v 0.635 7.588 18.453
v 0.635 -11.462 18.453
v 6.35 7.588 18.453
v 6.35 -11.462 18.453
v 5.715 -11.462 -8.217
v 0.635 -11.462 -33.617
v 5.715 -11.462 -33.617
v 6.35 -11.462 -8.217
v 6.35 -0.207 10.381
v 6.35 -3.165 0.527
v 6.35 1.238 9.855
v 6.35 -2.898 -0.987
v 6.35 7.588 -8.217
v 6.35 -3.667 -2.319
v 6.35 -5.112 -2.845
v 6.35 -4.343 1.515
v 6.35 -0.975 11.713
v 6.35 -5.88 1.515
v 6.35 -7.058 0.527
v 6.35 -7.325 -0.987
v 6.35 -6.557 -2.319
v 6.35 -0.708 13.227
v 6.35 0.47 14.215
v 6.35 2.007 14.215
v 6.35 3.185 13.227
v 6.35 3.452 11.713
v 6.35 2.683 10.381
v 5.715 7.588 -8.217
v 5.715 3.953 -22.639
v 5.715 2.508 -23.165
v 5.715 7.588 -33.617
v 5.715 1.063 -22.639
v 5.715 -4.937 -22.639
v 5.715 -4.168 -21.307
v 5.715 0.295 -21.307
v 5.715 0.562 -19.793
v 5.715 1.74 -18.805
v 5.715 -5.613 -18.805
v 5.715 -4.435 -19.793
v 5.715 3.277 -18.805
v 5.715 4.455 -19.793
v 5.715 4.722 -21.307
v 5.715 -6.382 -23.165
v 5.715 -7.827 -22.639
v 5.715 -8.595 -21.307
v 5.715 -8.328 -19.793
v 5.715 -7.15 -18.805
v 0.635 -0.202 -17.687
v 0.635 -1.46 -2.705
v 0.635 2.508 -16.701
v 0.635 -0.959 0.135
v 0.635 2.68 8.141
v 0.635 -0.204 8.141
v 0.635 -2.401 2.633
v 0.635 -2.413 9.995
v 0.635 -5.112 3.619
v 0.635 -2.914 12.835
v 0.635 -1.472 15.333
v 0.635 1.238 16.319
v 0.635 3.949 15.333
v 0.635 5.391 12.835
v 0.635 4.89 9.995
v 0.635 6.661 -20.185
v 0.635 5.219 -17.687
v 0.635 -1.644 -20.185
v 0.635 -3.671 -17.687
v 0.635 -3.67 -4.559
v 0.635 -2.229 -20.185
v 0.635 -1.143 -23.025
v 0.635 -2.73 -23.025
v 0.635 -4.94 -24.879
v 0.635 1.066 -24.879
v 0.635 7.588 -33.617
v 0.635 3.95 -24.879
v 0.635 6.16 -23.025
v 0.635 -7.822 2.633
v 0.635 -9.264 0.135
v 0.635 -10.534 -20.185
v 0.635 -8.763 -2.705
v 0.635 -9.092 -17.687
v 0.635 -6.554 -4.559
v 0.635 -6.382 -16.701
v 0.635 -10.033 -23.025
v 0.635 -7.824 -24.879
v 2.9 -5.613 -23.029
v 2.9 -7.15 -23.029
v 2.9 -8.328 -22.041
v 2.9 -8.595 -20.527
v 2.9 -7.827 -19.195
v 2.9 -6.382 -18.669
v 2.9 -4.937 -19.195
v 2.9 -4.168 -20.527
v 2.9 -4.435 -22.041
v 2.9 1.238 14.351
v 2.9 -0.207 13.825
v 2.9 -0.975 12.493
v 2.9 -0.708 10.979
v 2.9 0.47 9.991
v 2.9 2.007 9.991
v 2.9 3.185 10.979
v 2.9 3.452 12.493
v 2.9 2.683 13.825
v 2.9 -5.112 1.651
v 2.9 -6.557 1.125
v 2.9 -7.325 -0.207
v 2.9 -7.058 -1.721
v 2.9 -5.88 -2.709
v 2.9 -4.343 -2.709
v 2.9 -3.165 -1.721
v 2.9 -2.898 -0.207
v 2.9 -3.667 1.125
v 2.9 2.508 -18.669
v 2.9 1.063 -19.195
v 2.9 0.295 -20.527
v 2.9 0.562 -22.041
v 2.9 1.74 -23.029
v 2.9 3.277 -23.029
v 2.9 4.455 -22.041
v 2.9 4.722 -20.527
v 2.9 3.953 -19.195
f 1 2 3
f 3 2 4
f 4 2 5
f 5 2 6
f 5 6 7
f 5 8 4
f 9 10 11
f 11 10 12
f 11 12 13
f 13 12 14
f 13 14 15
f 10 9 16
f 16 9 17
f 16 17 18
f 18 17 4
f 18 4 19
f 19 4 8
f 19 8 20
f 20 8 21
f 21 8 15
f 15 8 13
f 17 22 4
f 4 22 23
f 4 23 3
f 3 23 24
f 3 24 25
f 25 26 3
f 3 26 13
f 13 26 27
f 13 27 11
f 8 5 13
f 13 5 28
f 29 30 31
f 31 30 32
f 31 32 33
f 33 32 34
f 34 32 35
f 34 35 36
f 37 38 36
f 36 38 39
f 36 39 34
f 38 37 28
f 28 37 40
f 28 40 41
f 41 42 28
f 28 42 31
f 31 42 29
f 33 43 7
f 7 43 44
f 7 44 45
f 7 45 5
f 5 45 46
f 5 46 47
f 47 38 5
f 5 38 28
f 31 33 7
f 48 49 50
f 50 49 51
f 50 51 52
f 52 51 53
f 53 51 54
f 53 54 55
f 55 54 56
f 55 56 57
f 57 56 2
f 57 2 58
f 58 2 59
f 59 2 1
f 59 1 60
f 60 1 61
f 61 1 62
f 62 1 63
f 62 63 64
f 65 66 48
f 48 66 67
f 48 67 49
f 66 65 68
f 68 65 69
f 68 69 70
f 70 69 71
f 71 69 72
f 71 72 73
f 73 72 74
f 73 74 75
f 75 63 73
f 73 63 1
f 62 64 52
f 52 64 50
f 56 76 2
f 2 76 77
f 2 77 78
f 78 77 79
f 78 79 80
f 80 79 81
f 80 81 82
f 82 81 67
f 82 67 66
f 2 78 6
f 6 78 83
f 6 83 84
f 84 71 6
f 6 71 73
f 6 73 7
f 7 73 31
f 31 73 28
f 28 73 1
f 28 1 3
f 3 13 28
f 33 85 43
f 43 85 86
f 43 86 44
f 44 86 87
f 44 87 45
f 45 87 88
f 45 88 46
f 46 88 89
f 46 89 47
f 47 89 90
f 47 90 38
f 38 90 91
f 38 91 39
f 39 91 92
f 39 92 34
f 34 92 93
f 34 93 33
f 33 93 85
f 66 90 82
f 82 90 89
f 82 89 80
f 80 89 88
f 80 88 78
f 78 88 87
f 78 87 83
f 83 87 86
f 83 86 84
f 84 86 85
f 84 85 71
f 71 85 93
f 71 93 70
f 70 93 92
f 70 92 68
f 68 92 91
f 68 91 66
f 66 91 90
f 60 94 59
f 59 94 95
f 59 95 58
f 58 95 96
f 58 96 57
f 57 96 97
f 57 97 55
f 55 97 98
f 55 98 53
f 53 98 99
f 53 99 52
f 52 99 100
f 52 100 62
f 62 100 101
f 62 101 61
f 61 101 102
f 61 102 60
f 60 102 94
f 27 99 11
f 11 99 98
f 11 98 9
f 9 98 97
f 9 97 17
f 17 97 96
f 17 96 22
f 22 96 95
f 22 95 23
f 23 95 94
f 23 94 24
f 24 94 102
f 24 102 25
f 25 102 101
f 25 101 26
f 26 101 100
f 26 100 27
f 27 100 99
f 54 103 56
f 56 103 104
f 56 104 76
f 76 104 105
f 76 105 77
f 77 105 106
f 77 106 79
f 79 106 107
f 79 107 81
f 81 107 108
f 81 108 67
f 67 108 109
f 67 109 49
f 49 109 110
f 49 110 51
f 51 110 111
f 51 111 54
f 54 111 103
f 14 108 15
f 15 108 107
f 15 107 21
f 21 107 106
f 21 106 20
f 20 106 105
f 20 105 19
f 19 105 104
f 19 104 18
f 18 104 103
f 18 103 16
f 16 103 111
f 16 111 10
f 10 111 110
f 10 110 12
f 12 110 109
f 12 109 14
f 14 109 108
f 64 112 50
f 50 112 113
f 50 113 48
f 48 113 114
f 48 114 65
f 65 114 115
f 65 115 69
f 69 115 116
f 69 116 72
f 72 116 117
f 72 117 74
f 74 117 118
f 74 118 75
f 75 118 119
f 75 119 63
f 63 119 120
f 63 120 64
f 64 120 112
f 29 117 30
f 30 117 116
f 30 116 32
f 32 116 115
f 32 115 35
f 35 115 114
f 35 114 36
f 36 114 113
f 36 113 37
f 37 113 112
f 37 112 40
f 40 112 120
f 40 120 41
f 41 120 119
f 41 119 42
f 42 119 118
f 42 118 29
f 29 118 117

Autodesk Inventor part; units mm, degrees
ref_plane "YZ Plane" through (0, 0, 0) normal (1, 0, 0) x (0, 1, 0)
ref_plane "XZ Plane" through (0, 0, 0) normal (0, 1, 0) x (-1, 0, 0)
ref_plane "XY Plane" through (0, 0, 0) normal (0, 0, 1) x (1, 0, 0)
sketch "Sketch1" plane through (0, 0, 0) normal (1, 0, 0) x (0, 1, 0)
  line L0 (7.5884, 18.4529) -> (-11.4616, 18.4529)
  line L1 (-11.4616, 18.4529) -> (-11.4616, -33.6171)
  line L2 (-11.4616, -33.6171) -> (7.5884, -33.6171)
  line L3 (7.5884, -33.6171) -> (7.5884, 18.4529)
  point P0 (0, 0)
  dimension "d0" = 52.07
  dimension "d1" = 19.05
extrude "Extrusion1" add sketch "Sketch1" along normal blind 6.35
sketch "Sketch3" plane through (0, 7.5884, 18.4529) normal (0, 1, 0) x (1, 0, 0)
  line L0 (0, 26.67) -> (0.635, 26.67)
  line L1 (0.635, 26.67) -> (0.635, 52.07)
  line L2 (0.635, 52.07) -> (0, 52.07)
  line L3 (0, 52.07) -> (0, 26.67)
  line L4 (5.715, 52.07) -> (6.35, 52.07)
  line L5 (6.35, 52.07) -> (6.35, 26.67)
  line L6 (6.35, 26.67) -> (5.715, 26.67)
  line L7 (5.715, 26.67) -> (5.715, 52.07)
  line L8 (6.35, 52.07) -> (6.35, 0) projected
  line L9 (0, 52.07) -> (0, 0) projected
  line L10 (0, 52.07) -> (6.35, 52.07) projected
  point P0 (0, 18.4529)
  dimension "d19" = 25.4
  dimension "d20" = 25.4
  dimension "d21" = 0
  dimension "d22" = 0
  dimension "d23" = 0.635
  dimension "d24" = 0.635
  dimension "d25" = 0
extrude "Extrusion2" cut sketch "Sketch3" against normal blind 50.8
sketch "Sketch4" plane through (0, 7.5884, 18.4529) normal (0, 1, 0) x (1, 0, 0)
  line L0 (0.635, 34.7601) -> (-3.8704, 34.7601)
  line L1 (-3.8704, 34.7601) -> (-3.8704, -3.0853)
  line L2 (-3.8704, -3.0853) -> (0.635, -3.0853)
  line L3 (0.635, -3.0853) -> (0.635, 34.7601)
  line L4 (0.635, 52.07) -> (0.635, 26.67) projected
  point P0 (0, 18.4529)
  dimension "d28" = 0
extrude "Extrusion3" cut sketch "Sketch4" against normal blind 25.4
sketch "Sketch5" plane through (0.635, 7.5884, -33.6171) normal (-1, 0, 0) x (0, 0, 1)
  line L0 (52.07, 0) -> (52.07, -19.05) projected
  line L1 (0, 0) -> (52.07, 0) projected
  line L2 (0, -19.05) -> (0, 0) projected
  point P0 (33.6171, -7.5884)
  point P1 (45.72, -6.35)
  point P2 (33.02, -12.7)
  point P3 (12.7, -5.08)
  point P4 (12.7, -13.97)
  dimension "d31" = 6.35
  dimension "d32" = 6.35
  dimension "d33" = 12.7
  dimension "d34" = 19.05
  dimension "d35" = 5.08
  dimension "d36" = 12.7
  dimension "d37" = 12.7
  dimension "d38" = 13.97
hole "Hole2" at (0.635, 1.2384, 12.1029) at (0.635, -5.1116, -0.5971) at (0.635, 2.5084, -20.9171) at (0.635, -6.3816, -20.9171) direction (1, 0, 0) diameter 4.4958 end through all countersink diameter 8.4328 countersink angle 82 clearance for "Flat Head Machine Screw (82)" size "#8" standard "Ansi Unified Screw Threads"
properties part number "SidePlate"
